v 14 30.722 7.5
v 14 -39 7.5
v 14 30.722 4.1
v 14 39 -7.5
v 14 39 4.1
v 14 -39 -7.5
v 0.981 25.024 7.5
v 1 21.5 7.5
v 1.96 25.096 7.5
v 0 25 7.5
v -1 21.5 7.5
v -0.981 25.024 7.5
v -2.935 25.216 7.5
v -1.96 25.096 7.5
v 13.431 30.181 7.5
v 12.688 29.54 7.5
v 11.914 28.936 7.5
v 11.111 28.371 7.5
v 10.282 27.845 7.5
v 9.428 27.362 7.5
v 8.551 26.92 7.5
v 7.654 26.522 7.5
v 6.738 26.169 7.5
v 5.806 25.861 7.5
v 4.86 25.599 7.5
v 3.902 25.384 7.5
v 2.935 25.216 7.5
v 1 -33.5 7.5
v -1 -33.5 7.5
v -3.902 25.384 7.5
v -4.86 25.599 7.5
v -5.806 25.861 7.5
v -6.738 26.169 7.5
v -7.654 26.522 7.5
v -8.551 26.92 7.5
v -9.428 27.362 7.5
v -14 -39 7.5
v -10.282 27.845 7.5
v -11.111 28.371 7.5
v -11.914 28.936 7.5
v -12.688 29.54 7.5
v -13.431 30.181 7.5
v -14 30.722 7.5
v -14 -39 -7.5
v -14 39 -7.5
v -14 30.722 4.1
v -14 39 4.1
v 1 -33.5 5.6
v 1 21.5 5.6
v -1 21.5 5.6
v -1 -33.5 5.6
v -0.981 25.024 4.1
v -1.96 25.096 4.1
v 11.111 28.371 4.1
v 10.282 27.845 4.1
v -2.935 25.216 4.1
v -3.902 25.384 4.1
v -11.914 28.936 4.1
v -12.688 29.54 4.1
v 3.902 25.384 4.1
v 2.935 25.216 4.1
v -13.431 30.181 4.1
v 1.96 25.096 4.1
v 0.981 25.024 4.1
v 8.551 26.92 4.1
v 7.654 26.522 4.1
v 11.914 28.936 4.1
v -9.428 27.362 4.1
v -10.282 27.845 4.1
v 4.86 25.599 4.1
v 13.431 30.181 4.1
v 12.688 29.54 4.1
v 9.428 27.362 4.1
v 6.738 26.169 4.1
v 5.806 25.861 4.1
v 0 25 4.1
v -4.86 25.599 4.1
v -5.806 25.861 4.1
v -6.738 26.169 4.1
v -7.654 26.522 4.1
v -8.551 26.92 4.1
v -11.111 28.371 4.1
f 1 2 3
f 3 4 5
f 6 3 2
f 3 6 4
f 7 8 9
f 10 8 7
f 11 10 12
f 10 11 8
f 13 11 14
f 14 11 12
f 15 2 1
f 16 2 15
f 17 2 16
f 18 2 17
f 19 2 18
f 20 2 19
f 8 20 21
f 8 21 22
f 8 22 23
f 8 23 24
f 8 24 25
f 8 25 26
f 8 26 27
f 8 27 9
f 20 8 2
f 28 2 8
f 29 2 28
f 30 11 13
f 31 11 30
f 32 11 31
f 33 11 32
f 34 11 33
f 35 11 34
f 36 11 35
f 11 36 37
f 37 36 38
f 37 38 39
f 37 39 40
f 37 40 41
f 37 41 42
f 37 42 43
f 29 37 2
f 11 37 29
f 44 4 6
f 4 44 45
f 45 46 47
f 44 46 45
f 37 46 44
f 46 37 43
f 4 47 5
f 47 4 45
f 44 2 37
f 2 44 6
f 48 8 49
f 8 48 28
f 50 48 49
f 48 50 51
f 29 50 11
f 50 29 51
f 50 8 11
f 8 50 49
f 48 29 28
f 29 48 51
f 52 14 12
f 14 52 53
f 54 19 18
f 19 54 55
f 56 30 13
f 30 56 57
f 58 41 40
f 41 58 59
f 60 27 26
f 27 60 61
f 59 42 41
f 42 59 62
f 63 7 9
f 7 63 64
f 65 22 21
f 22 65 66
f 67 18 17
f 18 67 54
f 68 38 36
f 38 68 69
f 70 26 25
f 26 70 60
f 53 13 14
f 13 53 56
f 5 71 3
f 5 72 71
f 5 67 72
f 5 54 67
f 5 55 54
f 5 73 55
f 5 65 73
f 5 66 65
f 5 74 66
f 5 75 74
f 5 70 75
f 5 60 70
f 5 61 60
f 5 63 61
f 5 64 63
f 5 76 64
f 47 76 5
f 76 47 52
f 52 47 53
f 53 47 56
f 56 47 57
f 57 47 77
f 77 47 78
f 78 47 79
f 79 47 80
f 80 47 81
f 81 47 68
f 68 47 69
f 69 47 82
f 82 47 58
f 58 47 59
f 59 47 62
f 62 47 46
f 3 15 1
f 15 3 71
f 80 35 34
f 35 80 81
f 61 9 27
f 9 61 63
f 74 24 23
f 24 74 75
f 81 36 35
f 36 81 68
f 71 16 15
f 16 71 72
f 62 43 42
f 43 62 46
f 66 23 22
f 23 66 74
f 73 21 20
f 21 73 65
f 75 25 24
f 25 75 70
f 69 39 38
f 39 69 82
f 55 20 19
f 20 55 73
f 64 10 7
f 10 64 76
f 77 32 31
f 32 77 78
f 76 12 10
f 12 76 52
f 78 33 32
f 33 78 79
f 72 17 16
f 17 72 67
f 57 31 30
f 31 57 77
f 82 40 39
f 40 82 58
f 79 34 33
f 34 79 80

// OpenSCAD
difference() {
    translate([0,0,0])
    cube([28,78,15],center=true);

    // Walkway impression
    translate([0,-6,6.6])
    cube([2,55,2], center=true);
    
    translate([0,45,6.6])
    cylinder(h=5, r=20, center=true, $fn=128);
}
